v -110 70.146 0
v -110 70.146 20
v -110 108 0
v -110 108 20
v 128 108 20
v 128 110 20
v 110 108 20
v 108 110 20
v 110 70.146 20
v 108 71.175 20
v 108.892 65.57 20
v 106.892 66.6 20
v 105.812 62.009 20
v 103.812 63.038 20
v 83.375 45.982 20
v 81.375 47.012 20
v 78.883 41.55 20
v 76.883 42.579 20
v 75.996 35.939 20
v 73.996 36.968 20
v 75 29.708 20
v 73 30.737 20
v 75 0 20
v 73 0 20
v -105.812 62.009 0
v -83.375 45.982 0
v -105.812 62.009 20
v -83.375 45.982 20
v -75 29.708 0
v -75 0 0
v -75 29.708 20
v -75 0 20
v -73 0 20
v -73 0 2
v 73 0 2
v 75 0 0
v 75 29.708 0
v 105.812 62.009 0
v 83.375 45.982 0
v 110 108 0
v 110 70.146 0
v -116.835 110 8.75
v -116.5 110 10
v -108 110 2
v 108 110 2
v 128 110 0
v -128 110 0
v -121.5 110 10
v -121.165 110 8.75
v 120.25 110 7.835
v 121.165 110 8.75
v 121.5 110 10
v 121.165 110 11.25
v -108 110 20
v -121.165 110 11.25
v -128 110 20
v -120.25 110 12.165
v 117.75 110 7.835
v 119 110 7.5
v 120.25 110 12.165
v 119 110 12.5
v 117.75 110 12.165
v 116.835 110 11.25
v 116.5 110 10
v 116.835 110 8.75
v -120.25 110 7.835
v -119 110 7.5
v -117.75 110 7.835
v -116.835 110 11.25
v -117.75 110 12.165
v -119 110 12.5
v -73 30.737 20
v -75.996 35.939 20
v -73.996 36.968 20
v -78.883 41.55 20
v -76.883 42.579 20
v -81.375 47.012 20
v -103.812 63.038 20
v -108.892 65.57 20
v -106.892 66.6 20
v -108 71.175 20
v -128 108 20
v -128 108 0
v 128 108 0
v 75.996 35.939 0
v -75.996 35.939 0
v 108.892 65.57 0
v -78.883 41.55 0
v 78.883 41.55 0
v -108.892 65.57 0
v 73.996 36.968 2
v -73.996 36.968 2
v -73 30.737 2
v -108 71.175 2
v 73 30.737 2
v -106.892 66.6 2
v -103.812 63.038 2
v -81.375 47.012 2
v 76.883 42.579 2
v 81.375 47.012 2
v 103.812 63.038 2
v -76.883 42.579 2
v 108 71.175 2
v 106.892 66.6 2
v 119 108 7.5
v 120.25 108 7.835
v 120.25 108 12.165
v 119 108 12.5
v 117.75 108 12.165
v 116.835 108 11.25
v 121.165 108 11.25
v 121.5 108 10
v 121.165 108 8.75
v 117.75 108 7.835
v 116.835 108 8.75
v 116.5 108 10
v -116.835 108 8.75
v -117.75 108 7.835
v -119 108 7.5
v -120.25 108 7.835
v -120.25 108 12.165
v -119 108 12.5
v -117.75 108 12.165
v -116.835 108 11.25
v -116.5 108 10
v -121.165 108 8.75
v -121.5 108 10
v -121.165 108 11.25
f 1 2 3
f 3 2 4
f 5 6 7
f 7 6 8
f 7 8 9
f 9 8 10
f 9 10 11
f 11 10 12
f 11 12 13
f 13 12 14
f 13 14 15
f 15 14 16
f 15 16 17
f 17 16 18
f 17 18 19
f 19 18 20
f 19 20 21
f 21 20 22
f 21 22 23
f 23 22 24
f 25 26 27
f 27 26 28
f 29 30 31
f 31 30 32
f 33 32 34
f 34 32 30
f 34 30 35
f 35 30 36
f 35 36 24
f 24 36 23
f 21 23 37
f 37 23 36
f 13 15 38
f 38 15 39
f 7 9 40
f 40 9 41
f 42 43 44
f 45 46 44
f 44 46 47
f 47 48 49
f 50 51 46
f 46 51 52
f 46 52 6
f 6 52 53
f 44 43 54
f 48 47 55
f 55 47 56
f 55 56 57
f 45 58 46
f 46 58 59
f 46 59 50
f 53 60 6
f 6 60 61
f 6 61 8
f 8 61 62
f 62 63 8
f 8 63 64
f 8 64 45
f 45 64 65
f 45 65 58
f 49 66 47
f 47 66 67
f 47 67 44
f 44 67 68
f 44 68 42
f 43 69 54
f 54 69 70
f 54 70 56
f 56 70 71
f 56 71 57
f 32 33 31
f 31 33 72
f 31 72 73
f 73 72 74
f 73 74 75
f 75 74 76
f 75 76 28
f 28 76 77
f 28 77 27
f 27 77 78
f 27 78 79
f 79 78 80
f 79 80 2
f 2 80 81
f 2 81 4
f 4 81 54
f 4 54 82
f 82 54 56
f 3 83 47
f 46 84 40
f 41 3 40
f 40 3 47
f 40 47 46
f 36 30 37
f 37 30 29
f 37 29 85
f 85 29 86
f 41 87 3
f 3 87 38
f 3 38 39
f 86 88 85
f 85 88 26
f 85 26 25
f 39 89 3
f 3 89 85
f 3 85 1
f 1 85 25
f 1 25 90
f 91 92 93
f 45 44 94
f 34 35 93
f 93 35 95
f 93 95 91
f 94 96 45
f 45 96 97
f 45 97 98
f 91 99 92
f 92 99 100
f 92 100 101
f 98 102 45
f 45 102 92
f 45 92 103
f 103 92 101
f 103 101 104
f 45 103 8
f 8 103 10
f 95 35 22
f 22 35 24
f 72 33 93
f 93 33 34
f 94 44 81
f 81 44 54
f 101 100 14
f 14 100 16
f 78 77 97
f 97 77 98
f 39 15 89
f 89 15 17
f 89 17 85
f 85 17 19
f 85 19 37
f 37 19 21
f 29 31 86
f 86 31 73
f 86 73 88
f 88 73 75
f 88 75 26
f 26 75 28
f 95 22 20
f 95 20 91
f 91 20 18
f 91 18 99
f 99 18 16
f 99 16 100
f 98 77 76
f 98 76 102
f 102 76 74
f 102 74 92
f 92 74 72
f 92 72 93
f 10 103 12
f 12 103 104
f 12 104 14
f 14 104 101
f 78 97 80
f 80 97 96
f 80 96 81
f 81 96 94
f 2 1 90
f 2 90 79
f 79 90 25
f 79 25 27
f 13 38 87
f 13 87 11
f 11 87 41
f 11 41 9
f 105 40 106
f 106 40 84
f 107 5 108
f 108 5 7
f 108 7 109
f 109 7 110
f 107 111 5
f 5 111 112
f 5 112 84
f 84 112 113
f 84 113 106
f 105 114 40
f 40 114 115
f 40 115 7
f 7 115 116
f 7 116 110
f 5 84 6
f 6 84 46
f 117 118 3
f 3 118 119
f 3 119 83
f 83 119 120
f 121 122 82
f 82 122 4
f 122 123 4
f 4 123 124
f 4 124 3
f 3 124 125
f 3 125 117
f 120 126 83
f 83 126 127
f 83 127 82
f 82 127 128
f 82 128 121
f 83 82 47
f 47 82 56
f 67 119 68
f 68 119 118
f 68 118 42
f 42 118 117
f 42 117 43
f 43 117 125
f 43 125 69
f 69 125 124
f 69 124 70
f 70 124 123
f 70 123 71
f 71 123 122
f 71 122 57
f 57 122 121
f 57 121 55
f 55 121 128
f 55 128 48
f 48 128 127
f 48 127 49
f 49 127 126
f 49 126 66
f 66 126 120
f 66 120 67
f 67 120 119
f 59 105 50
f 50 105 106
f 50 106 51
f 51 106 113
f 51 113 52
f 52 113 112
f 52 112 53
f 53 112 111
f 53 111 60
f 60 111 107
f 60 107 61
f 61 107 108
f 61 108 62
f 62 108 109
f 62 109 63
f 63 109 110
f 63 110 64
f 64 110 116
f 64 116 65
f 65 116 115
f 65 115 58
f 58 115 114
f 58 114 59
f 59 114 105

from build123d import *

# Parameters (mm, degrees)
BOSS_EXTRU_1_DEPTH      = 20
ENL_V_MAT_EXTRU_2_DEPTH = 18
CONG_1_R                = 20
CONG_2_R                = 10
ESQUISSE7_W             = 20
ESQUISSE7_H             = 20
BOSS_EXTRU_2_DEPTH      = 2
ESQUISSE8_R             = 2.5
ENL_V_MAT_EXTRU_3_DEPTH = 10


with BuildPart() as part:
    # Esquisse1 → Boss.-Extru.1 (new body)
    with BuildSketch(Plane.XY):
        Polygon((110, 110), (-110, 110), (-110, 65), (-75, 40), (-75, 0), (75, 0), (75, 40), (110, 65), align=None)
    extrude(amount=BOSS_EXTRU_1_DEPTH)

    # Esquisse4 → Enlèv. mat.-Extru.2 (cut)
    with BuildSketch(Plane.XY.offset(20)):
        Polygon((-108, 181.485608489), (-108, 66.029235791), (-73, 41.029235791), (-73, -7.129747867), (73, -7.129747867), (73, 41.029235791), (108, 66.029235791), (108, 181.485608489), align=None)
    extrude(amount=-ENL_V_MAT_EXTRU_2_DEPTH, mode=Mode.SUBTRACT)

    # Congé1
    cong_1_edges = [part.edges().sort_by_distance(p)[0] for p in [
        (75, 40, 10),
        (-75, 40, 10),
        (73, 41.029235791, 11),
        (-73, 41.029235791, 11),
    ]]
    fillet(cong_1_edges, radius=CONG_1_R)

    # Congé2
    cong_2_edges = [part.edges().sort_by_distance(p)[0] for p in [
        (110, 65, 10),
        (-110, 65, 10),
        (-108, 66.029235791, 11),
        (108, 66.029235791, 11),
    ]]
    fillet(cong_2_edges, radius=CONG_2_R)

    # Esquisse7 → Boss.-Extru.2 (add)
    with BuildSketch(Plane(origin=(0, 110, 0), x_dir=(1, 0, 0), z_dir=(0, 1, 0))):
        with Locations((-118, -10)):
            Rectangle(ESQUISSE7_W, ESQUISSE7_H)
        with Locations((118, -10)):
            Rectangle(ESQUISSE7_W, ESQUISSE7_H)
    extrude(amount=-BOSS_EXTRU_2_DEPTH)

    # Esquisse8 → Enlèv. mat.-Extru.3 (cut)
    with BuildSketch(Plane.XZ.offset(-108)):
        with Locations(Location((119, 10, 0), (0, 0, 270))):
            Circle(ESQUISSE8_R)
        with Locations((-119, 10)):
            Circle(ESQUISSE8_R)
    extrude(amount=-ENL_V_MAT_EXTRU_3_DEPTH, mode=Mode.SUBTRACT)


solid = part.part
